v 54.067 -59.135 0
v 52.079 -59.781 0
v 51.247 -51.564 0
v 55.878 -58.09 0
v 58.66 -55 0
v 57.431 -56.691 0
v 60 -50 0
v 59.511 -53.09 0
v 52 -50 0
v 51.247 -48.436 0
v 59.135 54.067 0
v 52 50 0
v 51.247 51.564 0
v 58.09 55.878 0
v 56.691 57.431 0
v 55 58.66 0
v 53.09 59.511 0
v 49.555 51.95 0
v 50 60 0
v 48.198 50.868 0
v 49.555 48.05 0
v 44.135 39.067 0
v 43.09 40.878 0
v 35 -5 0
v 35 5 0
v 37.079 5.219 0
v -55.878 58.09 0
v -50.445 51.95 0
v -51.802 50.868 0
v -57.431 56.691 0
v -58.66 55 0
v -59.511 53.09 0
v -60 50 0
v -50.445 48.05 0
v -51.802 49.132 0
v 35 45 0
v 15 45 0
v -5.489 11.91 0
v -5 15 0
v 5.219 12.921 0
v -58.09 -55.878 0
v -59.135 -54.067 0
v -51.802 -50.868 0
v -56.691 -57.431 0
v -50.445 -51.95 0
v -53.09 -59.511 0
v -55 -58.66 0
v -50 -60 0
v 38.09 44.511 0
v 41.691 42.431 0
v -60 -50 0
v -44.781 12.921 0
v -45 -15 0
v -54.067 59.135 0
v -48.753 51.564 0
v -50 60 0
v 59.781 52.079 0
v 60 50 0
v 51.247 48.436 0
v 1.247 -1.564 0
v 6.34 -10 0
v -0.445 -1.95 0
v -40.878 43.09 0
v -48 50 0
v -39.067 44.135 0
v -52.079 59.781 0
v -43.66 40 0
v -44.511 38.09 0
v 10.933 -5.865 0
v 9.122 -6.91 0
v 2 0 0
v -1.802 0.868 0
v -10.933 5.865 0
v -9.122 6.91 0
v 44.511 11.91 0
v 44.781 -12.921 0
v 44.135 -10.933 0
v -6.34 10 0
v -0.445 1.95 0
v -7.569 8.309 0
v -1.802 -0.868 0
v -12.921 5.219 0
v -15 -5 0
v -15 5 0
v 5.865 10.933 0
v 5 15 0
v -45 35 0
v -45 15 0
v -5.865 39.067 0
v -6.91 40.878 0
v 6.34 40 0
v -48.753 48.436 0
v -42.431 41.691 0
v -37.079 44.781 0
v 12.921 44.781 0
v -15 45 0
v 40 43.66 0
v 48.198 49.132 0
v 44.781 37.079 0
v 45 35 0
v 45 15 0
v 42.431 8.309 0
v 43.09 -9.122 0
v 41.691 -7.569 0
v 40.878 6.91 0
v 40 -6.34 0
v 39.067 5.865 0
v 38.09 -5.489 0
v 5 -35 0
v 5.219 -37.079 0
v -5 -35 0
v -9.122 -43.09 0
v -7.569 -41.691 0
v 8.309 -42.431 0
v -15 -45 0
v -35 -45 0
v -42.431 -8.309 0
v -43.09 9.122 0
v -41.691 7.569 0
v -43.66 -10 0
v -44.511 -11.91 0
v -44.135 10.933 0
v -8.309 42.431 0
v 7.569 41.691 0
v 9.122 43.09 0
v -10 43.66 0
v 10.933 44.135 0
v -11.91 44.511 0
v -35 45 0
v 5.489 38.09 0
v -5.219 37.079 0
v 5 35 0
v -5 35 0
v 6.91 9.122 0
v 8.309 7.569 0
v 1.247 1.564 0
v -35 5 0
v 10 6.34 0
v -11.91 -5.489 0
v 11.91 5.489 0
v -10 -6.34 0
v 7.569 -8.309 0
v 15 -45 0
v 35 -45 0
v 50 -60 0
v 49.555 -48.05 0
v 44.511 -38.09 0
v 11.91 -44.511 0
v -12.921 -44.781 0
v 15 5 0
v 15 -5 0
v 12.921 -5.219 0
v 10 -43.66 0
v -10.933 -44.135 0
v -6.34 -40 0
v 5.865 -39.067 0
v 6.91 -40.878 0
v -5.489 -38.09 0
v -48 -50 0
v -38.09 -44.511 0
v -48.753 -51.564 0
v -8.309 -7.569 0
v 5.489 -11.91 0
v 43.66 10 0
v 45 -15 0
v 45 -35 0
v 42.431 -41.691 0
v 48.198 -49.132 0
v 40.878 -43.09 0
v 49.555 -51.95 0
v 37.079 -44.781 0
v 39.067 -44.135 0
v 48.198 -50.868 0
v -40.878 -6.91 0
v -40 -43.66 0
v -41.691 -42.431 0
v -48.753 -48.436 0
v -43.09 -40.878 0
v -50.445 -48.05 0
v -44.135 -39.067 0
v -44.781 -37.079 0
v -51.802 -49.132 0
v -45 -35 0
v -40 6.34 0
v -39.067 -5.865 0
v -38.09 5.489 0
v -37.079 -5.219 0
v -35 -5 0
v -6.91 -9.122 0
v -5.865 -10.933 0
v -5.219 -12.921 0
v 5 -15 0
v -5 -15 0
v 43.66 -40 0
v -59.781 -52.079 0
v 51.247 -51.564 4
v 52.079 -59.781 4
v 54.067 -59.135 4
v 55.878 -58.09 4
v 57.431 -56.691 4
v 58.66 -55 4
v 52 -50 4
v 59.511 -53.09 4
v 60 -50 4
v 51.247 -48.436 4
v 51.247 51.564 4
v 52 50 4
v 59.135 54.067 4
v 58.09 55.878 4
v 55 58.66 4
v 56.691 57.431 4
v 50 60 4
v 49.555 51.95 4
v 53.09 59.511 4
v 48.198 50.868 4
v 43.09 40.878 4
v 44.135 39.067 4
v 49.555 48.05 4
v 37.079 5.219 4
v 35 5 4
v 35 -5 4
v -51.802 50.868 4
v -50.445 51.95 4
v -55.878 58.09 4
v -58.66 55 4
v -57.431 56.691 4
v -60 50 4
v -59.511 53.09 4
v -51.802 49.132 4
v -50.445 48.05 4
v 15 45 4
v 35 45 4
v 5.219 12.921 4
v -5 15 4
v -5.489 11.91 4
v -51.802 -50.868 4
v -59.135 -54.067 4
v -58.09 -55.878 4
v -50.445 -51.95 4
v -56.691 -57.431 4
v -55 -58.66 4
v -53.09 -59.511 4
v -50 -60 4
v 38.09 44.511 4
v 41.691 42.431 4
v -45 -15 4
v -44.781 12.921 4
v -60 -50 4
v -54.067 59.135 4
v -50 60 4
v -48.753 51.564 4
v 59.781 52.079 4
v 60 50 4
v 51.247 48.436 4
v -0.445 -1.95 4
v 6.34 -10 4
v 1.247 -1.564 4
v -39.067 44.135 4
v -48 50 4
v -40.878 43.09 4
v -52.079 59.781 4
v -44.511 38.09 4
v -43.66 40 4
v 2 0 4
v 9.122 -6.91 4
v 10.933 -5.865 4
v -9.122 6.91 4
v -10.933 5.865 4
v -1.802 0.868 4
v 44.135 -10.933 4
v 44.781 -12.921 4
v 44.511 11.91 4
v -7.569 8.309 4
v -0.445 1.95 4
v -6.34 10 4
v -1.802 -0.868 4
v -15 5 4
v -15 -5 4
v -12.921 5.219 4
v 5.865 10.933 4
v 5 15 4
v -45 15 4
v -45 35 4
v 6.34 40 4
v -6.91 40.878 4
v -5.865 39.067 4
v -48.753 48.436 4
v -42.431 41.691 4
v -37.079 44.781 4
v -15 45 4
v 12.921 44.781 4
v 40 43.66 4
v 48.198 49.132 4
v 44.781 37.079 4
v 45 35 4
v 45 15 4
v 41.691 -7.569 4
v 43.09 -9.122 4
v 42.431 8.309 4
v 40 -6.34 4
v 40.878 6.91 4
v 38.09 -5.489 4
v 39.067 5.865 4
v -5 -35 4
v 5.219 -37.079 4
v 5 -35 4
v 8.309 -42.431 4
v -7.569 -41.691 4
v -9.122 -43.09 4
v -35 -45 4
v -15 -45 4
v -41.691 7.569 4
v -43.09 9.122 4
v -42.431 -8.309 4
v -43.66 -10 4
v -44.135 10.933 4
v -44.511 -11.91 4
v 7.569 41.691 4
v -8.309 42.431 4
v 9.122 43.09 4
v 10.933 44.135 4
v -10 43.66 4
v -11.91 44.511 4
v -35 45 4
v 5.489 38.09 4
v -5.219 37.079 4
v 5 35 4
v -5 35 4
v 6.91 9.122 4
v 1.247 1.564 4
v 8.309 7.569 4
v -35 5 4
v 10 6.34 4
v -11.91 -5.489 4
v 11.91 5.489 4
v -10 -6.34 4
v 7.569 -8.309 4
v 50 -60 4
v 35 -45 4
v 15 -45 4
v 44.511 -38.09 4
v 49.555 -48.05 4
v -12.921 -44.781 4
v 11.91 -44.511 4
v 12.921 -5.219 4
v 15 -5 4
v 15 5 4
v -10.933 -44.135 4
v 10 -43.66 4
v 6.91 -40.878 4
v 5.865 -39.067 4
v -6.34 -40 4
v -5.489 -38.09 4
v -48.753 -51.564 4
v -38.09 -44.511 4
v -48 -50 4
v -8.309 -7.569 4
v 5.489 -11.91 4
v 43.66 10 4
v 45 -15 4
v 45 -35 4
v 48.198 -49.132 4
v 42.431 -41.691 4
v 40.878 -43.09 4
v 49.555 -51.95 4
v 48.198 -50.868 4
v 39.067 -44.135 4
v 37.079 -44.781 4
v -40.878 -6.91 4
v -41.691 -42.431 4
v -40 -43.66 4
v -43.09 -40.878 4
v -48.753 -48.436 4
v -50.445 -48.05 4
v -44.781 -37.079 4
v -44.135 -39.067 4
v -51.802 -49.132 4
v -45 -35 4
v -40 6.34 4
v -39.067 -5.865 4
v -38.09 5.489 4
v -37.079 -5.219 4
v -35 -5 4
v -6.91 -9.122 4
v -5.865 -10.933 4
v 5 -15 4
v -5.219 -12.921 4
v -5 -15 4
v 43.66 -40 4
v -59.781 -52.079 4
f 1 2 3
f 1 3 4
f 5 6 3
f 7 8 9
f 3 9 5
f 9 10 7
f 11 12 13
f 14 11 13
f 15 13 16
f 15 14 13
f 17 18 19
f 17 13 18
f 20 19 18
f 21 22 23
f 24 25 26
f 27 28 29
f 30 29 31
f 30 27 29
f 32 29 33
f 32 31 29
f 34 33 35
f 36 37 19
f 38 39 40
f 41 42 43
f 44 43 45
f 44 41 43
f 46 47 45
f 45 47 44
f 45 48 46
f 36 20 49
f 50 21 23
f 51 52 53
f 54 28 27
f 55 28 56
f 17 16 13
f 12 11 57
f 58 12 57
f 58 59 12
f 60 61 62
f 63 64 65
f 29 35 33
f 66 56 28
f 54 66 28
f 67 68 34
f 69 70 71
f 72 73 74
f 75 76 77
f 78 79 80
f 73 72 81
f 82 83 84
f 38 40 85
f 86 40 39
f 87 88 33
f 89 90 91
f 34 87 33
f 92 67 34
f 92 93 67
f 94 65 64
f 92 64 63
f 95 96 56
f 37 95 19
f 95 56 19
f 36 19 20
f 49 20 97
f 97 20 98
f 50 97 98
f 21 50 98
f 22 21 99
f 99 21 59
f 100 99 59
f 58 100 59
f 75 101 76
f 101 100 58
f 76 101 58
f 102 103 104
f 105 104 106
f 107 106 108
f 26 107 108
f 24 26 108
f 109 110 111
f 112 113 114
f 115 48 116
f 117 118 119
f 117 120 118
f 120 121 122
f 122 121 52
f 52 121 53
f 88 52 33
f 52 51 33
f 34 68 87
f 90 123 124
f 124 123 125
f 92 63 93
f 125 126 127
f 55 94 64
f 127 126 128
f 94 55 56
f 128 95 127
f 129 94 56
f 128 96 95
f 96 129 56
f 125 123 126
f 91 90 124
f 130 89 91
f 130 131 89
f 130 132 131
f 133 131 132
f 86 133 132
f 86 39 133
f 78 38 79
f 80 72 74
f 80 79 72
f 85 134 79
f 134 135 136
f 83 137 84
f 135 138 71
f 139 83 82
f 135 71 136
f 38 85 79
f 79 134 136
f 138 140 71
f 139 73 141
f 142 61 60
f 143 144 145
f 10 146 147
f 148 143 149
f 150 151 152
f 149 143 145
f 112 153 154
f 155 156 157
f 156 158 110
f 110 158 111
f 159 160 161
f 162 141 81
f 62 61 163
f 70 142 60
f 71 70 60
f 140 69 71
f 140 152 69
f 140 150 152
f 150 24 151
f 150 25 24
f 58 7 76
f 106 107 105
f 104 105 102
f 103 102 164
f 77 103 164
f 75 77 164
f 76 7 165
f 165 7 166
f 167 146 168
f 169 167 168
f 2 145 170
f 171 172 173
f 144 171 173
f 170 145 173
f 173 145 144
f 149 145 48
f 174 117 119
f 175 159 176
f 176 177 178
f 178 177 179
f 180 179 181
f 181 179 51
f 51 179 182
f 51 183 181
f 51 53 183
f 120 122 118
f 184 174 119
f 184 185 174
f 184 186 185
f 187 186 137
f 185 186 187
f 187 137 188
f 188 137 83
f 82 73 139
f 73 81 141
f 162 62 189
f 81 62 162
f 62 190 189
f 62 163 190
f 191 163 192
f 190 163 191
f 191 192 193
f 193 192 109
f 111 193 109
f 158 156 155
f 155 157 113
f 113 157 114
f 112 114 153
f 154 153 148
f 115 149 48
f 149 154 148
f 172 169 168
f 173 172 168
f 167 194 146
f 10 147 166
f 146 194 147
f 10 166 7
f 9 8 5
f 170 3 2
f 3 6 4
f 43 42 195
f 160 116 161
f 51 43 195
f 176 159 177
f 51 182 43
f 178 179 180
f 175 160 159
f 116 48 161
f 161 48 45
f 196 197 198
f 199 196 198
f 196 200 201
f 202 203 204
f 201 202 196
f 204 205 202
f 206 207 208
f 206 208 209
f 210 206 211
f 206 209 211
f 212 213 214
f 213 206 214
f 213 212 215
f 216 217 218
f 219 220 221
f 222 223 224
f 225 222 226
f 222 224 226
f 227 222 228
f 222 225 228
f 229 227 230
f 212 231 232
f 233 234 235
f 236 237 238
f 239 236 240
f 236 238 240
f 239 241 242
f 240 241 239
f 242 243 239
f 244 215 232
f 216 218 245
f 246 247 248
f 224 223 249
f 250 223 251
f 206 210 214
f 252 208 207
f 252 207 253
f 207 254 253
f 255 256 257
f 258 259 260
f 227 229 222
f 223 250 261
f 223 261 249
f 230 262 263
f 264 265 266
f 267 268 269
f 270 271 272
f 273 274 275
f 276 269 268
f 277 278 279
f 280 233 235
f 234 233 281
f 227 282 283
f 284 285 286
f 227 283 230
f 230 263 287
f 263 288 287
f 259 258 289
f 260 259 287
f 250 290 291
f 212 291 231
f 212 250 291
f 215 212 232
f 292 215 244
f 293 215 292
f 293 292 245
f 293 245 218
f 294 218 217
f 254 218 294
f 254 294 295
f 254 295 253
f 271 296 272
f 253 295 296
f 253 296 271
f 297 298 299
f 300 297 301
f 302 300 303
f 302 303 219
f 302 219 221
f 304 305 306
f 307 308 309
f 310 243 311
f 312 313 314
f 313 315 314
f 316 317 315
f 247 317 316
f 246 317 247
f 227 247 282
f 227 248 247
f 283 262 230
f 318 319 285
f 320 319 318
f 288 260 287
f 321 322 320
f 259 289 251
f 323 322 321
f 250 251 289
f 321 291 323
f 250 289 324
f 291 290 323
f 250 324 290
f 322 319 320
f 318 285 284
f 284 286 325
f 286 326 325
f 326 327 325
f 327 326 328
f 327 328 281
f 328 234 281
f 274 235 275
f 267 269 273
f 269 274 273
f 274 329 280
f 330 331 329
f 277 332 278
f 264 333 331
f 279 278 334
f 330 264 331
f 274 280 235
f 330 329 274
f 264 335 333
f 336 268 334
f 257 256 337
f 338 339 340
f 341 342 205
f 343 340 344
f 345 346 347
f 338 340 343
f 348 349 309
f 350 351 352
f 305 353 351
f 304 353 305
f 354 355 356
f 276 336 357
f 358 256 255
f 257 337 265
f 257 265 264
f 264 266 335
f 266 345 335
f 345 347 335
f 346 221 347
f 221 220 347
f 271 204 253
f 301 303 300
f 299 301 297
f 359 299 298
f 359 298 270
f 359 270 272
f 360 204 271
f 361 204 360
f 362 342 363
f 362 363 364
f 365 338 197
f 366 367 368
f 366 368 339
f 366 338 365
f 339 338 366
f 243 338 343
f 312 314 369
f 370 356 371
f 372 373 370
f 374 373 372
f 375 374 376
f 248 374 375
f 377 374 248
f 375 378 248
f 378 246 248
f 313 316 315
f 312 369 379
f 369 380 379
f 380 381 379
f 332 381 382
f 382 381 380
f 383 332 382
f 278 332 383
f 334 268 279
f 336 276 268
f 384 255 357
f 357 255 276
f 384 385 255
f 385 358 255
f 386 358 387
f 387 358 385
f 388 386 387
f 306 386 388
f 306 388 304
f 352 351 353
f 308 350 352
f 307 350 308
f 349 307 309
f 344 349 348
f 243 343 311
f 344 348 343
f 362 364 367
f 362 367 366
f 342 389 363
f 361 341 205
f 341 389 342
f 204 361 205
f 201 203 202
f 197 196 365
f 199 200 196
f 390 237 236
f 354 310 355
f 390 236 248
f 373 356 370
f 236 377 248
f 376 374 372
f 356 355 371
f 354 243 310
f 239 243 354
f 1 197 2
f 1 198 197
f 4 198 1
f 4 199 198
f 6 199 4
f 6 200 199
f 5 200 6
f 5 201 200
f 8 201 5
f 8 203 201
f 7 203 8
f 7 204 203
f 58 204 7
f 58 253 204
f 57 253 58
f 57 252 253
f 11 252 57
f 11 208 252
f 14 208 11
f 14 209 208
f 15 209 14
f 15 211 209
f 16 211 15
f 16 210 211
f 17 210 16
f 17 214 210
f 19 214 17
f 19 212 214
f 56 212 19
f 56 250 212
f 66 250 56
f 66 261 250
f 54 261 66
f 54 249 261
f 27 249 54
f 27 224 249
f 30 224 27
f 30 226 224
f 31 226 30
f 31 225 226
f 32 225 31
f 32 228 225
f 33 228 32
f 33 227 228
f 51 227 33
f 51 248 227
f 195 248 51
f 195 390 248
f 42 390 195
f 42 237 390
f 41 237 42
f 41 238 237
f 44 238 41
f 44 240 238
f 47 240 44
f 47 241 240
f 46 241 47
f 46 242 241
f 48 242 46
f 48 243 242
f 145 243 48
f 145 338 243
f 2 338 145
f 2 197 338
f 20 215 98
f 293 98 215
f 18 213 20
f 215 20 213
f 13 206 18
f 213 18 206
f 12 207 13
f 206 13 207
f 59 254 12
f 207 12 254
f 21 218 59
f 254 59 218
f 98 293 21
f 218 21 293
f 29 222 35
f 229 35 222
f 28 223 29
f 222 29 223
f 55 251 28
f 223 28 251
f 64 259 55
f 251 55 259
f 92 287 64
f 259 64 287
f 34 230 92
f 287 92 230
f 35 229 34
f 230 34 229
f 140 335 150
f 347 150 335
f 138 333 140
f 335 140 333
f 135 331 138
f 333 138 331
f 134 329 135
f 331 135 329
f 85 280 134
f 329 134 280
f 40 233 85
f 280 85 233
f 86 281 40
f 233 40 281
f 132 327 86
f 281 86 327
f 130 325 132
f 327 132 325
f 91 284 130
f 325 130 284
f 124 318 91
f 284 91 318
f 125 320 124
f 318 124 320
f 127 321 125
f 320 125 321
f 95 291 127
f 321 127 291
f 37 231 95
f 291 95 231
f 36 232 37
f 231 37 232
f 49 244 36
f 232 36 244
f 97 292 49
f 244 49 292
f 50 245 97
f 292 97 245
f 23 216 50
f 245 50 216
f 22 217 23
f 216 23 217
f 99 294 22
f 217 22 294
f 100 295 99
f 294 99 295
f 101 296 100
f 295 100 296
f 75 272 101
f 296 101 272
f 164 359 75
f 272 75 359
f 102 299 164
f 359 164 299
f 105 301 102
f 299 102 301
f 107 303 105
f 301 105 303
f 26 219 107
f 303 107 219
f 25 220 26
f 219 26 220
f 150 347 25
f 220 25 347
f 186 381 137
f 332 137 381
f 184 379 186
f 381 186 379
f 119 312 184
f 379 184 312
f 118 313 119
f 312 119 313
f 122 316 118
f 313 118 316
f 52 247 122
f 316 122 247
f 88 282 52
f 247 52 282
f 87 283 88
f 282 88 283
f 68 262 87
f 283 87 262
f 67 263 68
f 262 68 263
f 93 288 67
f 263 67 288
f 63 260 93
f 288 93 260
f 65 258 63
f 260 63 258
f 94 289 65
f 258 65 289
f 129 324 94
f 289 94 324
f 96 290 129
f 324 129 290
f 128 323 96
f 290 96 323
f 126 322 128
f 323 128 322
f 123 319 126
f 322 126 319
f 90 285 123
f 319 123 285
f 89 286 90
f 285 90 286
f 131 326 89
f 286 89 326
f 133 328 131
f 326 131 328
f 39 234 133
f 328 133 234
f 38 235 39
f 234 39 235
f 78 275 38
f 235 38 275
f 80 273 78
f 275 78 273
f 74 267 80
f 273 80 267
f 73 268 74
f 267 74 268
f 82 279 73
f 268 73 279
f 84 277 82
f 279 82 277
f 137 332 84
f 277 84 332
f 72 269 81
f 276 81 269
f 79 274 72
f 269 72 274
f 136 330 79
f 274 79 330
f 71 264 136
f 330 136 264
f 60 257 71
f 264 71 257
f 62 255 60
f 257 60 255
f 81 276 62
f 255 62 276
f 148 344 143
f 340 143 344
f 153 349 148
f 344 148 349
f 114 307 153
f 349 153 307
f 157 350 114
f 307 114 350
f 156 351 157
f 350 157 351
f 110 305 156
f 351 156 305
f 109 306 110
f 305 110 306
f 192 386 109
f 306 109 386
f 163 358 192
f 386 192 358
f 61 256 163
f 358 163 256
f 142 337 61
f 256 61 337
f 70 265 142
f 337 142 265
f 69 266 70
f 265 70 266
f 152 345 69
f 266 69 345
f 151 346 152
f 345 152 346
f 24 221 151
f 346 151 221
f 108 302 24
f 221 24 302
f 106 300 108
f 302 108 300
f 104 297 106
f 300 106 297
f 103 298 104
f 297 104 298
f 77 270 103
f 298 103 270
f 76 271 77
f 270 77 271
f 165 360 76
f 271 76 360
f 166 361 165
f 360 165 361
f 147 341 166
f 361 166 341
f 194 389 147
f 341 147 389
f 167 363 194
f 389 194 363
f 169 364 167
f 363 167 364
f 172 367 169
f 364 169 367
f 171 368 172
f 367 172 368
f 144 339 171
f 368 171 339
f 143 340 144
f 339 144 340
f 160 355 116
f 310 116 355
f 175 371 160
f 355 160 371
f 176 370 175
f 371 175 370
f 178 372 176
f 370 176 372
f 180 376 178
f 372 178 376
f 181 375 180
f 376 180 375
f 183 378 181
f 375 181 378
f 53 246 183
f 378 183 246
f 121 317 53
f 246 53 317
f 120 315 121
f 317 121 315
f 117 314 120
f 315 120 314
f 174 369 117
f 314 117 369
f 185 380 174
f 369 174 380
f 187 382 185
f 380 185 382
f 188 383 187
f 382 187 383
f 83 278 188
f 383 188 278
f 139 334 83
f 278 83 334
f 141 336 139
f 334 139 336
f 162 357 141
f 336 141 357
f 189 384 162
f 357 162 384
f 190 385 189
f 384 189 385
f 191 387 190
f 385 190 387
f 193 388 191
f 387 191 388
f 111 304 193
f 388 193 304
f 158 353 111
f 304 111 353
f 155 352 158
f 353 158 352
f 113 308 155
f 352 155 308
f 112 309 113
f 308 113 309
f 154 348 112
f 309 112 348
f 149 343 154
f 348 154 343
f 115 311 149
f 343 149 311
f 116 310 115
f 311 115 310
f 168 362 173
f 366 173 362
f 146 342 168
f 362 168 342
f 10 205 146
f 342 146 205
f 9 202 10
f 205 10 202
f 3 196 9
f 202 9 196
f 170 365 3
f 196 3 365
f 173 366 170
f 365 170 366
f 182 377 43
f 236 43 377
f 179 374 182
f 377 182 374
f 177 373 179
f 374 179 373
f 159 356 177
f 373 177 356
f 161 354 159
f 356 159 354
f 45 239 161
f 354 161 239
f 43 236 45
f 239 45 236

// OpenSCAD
linear_extrude(4)
difference(){
    offset(10)
    square([100,100],center=true);
    circle(d=4);
    translate([50,50,0])circle(d=4);
    translate([50,-50,0])circle(d=4);
    translate([-50,50,0])circle(d=4);
    translate([-50,-50,0])circle(d=4);
    translate([25,25,0])
    offset(10)
    square([50-10-20,50-10-20],center=true);
    translate([25,-25,0])
    offset(10)
    square([50-10-20,50-10-20],center=true);
    translate([-25,25,0])
    offset(10)
    square([50-10-20,50-10-20],center=true);
    translate([-25,-25,0])
    offset(10)
    square([50-10-20,50-10-20],center=true);
}
